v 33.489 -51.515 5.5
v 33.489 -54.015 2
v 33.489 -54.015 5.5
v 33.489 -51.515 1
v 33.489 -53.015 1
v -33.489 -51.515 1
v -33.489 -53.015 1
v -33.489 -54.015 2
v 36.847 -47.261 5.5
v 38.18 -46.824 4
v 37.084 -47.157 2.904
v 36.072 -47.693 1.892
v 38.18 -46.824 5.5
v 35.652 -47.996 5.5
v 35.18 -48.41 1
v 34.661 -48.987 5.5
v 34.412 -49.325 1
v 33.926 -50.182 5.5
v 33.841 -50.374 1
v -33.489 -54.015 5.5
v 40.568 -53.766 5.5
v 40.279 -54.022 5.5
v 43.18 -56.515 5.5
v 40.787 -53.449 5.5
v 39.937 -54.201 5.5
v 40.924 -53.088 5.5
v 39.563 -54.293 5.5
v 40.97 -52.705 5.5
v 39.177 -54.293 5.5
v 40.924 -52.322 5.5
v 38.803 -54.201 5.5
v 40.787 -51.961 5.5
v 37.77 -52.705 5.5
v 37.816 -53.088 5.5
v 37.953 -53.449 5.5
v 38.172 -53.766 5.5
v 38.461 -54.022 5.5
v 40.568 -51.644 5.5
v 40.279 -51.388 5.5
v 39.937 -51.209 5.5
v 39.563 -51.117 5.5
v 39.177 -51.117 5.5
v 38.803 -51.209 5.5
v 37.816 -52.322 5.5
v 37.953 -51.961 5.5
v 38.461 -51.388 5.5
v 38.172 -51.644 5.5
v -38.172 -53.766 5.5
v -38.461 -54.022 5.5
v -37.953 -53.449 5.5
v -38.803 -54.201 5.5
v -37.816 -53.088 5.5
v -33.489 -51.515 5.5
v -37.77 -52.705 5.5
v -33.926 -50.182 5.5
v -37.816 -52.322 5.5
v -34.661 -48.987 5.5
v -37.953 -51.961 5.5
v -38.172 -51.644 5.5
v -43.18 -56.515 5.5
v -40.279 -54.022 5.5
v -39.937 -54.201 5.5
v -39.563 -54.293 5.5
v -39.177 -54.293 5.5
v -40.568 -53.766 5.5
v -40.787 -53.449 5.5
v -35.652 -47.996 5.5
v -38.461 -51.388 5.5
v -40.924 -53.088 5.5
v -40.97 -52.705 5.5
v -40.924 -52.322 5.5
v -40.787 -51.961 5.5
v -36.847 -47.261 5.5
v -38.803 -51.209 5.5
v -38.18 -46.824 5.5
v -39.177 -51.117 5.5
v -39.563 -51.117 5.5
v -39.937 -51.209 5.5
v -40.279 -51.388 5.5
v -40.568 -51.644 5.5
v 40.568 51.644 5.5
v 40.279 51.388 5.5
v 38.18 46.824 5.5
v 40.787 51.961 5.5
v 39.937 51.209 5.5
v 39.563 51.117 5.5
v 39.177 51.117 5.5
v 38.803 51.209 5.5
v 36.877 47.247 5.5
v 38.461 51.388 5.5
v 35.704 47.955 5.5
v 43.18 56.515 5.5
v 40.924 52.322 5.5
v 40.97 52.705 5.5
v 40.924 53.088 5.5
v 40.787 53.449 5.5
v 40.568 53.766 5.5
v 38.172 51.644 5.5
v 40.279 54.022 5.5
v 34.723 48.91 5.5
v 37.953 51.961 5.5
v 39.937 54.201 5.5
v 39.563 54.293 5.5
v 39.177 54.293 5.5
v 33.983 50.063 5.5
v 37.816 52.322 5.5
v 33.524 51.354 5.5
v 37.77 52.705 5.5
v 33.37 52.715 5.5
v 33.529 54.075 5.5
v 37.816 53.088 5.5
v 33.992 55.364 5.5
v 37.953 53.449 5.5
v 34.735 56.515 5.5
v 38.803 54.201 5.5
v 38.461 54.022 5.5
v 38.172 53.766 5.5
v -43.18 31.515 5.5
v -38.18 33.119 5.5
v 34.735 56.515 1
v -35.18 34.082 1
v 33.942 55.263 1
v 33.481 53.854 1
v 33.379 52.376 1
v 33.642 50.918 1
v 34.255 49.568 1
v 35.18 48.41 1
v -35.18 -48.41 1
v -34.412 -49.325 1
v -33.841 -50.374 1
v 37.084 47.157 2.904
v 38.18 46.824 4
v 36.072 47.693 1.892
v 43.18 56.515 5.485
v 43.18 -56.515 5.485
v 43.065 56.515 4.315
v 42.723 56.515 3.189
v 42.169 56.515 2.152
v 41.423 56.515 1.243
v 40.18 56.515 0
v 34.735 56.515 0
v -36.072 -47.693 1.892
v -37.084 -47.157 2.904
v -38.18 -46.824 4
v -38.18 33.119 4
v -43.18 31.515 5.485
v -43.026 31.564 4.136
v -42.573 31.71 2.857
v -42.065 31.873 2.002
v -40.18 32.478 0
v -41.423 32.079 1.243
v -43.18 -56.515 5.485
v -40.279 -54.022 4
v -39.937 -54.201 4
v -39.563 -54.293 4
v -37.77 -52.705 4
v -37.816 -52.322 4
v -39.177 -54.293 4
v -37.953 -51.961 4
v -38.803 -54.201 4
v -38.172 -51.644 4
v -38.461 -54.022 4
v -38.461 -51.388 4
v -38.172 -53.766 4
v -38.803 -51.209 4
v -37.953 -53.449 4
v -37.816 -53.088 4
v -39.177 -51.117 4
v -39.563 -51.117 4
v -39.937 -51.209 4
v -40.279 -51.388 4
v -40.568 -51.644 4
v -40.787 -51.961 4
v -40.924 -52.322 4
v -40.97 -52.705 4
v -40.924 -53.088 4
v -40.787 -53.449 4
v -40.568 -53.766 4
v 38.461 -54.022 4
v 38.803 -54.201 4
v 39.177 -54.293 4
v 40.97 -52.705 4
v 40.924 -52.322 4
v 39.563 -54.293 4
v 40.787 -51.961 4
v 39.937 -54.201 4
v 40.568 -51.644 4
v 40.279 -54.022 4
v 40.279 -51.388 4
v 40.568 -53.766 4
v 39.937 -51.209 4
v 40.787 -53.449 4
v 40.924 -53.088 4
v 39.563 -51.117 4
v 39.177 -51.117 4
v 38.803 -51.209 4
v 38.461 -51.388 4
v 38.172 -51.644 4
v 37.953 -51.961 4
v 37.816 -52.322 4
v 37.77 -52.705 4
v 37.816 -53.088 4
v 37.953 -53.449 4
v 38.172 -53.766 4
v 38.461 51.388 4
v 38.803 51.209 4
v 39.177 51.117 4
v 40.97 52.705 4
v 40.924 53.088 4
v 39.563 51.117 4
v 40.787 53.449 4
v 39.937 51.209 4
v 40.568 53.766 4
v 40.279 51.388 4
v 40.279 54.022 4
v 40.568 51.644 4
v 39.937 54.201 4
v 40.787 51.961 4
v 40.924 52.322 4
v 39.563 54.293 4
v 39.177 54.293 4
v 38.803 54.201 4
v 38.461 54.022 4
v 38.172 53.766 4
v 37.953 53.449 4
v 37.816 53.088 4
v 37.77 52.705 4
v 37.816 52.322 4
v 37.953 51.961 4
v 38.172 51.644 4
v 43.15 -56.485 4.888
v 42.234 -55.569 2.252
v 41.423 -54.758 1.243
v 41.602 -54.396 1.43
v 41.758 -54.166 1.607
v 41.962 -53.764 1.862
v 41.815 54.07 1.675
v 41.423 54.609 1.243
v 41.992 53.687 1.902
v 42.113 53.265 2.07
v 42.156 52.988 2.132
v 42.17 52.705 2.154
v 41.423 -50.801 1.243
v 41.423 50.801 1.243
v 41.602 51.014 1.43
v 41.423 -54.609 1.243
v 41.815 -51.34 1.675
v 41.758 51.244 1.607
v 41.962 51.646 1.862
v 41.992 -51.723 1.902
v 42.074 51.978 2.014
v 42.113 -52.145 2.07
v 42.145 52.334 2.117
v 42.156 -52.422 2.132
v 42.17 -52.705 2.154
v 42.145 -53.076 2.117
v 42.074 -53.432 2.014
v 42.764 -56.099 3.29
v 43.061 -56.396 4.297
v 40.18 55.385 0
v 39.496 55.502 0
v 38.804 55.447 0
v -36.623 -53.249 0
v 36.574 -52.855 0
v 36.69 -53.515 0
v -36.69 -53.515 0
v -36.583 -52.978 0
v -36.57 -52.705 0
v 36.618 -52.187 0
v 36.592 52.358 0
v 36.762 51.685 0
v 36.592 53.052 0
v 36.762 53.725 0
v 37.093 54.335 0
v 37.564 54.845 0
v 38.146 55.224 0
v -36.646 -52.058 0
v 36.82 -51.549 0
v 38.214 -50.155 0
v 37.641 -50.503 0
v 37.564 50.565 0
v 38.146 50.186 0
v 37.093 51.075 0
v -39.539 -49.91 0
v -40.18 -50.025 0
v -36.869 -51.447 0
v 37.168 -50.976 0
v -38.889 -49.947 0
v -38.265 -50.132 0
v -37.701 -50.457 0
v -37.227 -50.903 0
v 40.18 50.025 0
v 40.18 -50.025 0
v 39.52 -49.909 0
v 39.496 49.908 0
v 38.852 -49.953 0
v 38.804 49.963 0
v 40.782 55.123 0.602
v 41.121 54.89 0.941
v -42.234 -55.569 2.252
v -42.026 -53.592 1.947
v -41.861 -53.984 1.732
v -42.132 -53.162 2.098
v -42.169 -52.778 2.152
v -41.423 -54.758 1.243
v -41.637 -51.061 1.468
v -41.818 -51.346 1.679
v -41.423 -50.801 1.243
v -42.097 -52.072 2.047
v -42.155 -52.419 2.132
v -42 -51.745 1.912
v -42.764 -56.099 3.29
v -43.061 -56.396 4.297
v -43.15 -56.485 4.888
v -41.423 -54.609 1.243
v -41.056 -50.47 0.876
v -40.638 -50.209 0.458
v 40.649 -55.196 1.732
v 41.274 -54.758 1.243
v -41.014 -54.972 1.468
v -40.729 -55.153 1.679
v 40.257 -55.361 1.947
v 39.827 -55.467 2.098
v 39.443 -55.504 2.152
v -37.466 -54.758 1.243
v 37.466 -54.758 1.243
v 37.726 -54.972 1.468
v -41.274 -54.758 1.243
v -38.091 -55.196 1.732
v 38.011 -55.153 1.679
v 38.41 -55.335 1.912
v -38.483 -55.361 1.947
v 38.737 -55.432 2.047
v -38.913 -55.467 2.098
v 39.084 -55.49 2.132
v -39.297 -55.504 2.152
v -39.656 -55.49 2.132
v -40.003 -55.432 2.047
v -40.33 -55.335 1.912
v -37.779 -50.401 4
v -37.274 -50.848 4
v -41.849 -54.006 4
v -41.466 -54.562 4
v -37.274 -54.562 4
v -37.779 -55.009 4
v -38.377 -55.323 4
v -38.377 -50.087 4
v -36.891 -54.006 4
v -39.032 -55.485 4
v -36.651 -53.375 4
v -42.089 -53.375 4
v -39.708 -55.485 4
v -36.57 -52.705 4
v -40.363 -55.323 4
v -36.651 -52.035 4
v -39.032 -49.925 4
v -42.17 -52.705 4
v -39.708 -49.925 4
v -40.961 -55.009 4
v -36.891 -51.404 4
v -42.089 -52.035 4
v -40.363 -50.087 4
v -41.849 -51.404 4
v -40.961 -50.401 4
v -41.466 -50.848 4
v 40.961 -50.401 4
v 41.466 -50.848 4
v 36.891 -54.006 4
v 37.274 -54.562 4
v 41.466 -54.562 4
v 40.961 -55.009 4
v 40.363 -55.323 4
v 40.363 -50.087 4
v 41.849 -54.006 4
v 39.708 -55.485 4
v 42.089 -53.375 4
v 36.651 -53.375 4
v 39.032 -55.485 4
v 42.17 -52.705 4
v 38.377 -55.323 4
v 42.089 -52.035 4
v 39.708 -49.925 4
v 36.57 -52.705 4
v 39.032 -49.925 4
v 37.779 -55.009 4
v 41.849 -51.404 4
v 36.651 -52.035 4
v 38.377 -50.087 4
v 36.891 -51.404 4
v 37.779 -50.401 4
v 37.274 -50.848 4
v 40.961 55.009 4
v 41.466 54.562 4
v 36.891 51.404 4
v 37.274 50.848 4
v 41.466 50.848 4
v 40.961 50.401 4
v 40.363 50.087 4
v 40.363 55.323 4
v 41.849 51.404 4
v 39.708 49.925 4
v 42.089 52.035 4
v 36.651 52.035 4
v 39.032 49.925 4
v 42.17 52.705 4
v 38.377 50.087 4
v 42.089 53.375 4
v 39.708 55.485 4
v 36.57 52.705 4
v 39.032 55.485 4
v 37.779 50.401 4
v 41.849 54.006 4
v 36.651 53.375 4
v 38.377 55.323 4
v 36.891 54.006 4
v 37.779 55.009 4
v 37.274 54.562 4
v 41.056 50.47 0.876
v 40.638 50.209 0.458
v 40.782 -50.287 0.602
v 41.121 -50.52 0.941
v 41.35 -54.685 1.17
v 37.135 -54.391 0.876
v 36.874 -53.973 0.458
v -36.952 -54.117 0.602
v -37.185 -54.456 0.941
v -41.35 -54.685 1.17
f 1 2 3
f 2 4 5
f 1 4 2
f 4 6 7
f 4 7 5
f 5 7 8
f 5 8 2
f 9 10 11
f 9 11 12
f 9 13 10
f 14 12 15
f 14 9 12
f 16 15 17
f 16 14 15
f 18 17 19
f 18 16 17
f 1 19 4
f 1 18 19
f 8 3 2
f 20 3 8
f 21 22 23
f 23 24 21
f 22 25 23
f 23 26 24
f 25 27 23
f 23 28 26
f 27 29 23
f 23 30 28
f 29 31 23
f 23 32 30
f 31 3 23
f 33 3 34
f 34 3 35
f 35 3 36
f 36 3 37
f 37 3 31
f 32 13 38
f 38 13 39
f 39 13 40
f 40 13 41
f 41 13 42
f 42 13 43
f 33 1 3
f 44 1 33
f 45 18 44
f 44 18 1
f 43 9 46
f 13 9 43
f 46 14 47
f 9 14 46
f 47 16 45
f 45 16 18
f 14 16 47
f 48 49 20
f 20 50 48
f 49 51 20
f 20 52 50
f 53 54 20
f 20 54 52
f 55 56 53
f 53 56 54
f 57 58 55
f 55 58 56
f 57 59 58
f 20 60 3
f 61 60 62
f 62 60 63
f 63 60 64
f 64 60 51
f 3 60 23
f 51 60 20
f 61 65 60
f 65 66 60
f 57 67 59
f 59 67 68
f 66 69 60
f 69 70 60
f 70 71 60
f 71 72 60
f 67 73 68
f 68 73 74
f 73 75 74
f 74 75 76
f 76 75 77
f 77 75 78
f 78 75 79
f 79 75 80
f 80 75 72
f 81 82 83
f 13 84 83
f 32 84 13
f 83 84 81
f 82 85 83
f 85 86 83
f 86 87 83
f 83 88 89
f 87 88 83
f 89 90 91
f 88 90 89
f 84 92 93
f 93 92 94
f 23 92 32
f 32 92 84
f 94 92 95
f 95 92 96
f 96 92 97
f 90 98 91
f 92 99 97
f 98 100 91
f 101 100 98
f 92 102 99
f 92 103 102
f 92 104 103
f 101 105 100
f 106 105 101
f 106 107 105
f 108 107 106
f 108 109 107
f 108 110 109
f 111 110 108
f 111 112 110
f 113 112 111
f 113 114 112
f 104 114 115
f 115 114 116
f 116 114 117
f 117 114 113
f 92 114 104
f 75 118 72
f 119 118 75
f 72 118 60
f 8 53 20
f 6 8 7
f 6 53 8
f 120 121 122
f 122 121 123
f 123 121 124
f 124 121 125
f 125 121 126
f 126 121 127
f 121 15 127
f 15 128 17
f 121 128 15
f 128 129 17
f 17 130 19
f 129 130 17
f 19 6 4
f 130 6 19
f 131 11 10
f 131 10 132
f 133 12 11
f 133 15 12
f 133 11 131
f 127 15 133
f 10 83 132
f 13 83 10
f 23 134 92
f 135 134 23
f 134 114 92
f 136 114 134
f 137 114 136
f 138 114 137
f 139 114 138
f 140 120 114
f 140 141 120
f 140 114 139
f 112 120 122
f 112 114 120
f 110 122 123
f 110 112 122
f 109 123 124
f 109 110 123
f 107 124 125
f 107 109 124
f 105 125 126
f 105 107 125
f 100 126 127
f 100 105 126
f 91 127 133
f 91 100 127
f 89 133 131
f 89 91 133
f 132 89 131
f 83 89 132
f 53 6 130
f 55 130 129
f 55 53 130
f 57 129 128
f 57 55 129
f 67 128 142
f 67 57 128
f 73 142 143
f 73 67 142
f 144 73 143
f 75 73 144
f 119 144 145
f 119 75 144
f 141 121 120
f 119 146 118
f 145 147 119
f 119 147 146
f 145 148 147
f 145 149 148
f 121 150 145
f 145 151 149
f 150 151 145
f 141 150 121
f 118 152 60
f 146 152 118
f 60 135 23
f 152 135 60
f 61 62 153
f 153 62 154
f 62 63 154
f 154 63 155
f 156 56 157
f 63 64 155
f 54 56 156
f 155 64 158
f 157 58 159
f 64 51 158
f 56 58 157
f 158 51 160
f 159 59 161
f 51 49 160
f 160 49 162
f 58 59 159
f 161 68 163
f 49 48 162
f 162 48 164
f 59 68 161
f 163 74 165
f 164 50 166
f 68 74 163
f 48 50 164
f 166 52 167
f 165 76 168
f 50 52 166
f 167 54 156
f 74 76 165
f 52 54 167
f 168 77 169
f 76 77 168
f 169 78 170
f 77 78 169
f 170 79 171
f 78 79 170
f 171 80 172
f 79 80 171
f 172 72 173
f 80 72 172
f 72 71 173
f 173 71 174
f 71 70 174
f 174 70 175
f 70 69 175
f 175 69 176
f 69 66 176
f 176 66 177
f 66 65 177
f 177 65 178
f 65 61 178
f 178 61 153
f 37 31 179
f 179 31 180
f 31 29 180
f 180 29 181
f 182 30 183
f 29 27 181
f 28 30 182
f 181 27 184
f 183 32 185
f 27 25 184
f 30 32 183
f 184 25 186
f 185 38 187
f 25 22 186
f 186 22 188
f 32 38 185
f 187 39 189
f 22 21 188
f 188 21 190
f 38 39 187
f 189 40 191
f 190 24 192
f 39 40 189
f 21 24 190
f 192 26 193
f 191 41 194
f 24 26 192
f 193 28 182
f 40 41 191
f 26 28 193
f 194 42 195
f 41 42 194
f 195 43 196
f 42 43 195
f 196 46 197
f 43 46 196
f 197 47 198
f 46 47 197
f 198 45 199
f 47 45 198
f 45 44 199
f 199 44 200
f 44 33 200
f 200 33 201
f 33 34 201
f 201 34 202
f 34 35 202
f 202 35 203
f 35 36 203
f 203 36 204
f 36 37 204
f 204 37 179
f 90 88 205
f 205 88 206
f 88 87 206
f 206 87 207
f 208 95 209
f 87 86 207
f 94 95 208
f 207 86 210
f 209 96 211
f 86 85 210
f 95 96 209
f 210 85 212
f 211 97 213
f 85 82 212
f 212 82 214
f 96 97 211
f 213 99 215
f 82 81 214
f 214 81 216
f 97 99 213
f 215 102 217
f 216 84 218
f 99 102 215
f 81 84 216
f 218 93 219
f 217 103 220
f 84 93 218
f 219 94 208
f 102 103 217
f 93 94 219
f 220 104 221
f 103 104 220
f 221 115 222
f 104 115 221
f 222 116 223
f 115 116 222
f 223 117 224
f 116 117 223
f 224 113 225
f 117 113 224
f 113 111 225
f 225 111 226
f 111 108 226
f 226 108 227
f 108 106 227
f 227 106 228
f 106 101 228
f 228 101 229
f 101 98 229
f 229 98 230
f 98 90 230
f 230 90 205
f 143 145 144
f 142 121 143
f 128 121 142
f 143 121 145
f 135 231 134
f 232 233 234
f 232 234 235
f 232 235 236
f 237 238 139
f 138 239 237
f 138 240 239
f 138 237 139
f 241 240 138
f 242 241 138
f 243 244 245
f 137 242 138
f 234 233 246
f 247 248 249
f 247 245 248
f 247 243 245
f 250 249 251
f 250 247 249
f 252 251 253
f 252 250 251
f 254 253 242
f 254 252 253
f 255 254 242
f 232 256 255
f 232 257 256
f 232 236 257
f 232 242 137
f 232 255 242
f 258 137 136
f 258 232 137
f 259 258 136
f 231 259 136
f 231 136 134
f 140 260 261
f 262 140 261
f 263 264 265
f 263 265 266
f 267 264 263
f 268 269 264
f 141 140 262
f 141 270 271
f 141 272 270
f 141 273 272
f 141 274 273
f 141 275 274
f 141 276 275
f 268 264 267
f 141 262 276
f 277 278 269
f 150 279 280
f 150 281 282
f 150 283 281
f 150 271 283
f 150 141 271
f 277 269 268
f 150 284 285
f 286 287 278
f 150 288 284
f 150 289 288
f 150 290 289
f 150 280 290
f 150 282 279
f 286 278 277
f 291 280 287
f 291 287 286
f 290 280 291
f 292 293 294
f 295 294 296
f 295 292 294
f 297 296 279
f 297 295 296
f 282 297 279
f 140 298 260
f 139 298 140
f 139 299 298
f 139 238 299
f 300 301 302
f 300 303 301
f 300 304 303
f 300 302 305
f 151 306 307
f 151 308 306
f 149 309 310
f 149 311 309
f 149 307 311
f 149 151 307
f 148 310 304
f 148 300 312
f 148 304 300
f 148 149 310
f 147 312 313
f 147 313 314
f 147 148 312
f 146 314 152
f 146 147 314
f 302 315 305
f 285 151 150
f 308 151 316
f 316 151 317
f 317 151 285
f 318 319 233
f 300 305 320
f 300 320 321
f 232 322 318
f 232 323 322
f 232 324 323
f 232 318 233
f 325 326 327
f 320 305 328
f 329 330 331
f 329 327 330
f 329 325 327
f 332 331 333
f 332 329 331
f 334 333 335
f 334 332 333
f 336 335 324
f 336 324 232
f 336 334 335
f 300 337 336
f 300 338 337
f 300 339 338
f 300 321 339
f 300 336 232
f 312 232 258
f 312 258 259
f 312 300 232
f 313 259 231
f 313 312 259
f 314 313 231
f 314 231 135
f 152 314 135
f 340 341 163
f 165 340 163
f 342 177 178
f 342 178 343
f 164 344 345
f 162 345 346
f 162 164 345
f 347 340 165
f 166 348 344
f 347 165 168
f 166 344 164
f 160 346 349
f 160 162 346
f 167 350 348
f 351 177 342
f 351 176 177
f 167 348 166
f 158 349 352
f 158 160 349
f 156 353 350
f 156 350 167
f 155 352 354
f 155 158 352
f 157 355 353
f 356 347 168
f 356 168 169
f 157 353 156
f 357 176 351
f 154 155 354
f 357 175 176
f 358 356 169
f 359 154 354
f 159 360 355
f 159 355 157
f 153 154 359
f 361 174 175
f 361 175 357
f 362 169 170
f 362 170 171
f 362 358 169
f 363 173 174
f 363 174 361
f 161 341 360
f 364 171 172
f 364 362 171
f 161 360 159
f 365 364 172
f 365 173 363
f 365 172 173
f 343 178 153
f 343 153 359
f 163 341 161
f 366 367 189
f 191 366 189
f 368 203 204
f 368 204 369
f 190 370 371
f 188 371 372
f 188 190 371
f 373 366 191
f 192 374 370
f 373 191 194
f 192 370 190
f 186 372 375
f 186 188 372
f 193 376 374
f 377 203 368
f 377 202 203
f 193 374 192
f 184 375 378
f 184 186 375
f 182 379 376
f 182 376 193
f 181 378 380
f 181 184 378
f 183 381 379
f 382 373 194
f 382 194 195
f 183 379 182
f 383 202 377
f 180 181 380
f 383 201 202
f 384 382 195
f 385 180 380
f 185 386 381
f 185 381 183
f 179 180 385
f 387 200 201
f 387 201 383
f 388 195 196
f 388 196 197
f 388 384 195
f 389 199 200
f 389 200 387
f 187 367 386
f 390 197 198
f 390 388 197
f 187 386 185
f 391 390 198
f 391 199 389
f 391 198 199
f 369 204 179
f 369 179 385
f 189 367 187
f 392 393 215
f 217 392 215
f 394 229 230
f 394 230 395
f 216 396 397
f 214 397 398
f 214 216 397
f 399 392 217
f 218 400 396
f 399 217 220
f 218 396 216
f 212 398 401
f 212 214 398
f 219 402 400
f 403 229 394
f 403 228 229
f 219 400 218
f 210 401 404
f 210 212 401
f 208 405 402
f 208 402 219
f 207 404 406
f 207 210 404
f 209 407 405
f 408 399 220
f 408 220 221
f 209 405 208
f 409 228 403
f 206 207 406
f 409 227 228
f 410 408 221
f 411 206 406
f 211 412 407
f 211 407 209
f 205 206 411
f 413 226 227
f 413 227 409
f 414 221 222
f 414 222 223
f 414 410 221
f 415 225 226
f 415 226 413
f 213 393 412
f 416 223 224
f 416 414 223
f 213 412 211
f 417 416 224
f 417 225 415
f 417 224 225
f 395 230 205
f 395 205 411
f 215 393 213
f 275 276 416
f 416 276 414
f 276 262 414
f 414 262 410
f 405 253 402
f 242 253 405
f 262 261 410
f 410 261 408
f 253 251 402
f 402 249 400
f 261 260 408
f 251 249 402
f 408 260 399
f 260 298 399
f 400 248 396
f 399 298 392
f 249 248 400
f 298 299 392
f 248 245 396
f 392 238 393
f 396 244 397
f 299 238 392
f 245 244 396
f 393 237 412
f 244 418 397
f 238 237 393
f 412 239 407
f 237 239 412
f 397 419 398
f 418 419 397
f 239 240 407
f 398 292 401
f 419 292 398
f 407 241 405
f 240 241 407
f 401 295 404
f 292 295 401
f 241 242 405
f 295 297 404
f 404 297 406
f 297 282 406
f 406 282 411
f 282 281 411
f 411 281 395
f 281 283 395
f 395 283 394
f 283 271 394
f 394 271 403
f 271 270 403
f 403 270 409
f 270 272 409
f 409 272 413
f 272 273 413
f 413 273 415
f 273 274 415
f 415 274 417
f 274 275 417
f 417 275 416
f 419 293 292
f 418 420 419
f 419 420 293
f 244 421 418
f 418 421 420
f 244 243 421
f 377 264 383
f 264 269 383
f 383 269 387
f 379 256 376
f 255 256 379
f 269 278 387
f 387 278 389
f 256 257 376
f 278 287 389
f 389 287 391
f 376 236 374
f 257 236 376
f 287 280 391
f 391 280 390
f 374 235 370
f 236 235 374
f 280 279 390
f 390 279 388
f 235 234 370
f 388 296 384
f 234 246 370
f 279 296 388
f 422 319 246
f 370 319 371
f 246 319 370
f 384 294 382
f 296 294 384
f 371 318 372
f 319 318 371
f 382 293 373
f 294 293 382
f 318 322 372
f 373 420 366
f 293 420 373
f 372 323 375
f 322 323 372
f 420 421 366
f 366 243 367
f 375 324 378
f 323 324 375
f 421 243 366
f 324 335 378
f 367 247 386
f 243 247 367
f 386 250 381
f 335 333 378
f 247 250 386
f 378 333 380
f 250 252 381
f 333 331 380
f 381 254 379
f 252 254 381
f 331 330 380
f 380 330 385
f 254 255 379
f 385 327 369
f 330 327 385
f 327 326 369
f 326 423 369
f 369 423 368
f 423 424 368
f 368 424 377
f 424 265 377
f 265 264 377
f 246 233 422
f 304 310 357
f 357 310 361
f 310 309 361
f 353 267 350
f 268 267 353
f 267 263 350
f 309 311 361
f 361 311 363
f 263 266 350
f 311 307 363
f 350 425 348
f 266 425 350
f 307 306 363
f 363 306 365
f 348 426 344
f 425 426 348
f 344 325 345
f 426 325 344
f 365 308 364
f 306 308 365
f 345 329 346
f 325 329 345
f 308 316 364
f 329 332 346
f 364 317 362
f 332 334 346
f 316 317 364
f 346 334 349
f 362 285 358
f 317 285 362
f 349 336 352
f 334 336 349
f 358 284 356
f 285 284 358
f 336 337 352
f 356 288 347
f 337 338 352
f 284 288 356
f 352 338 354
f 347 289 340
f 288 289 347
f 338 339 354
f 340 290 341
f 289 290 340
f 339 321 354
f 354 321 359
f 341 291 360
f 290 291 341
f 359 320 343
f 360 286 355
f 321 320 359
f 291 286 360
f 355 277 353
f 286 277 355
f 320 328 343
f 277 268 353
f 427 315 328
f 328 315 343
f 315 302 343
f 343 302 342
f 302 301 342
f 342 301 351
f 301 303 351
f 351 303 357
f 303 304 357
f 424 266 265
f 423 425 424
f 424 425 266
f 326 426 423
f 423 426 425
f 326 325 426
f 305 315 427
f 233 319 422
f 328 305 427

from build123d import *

# Parameters (mm, degrees)
SKETCH_W            = 86.36
SKETCH_H            = 113.03
PAD_DEPTH           = 10
SKETCH001_R         = 1.6
POCKET_DEPTH        = 1
POCKET001_DEPTH     = 9
CHAMFER_SIZE        = 3
FILLET_R            = 6
FILLET_FACE23_R     = 1.6
POCKET002_DEPTH     = 9.001
POCKET002_FACE25_R  = 1.6
POCKET003_DEPTH     = 9.001
SKETCH003_R         = 2.8
POCKET005_DEPTH     = 4
POCKET006_DEPTH     = 10.001
POCKET006_FACE37_R  = 1.6
POCKET007_DEPTH     = 9.0010001
POCKET007_FACE6_R   = 1.6
POCKET008_DEPTH     = 4.5
CHAMFER001_SIZE     = 3
CHAMFER001_FACE10_W = 66.9783844647
CHAMFER001_FACE10_H = 4.5
POCKET009_DEPTH     = 2.5
CHAMFER002_SIZE     = 1


with BuildPart() as part:
    # Sketch → Pad (new body)
    with BuildSketch(Plane.XY):
        Rectangle(SKETCH_W, SKETCH_H)
    extrude(amount=PAD_DEPTH)

    # Sketch001 (on Face6 of Pad) → Pocket (cut)
    with BuildSketch(Plane.XY.offset(10)):
        with Locations((-39.37, -52.705)):
            Circle(SKETCH001_R)
        with Locations((39.37, -52.705)):
            Circle(SKETCH001_R)
        with Locations((39.37, 52.705)):
            Circle(SKETCH001_R)
    extrude(amount=-POCKET_DEPTH, mode=Mode.SUBTRACT)

    # Sketch002 (on Face5 of Pocket) → Pocket001 (cut)
    with BuildSketch(Plane.XY.offset(10)):
        with BuildLine():
            Line((-38.18, 56.515), (34.734927185, 56.515))
            ThreePointArc((34.734927185, 56.515), (33.7166110056, 50.695225665), (38.18, 46.8241922324))
            Line((38.18, -46.8241922324), (38.18, 46.8241922324))
            ThreePointArc((38.18, -46.8241922324), (35.1273593129, -48.4623593129), (33.4891922324, -51.515))
            Line((-33.4891922324, -51.515), (33.4891922324, -51.515))
            ThreePointArc((-33.4891922324, -51.515), (-35.1273593129, -48.4623593129), (-38.18, -46.8241922324))
            Line((-38.18, -46.8241922324), (-38.18, 56.515))
        make_face()
    extrude(amount=-POCKET001_DEPTH, mode=Mode.SUBTRACT)

    # Chamfer
    chamfer_edges = [part.edges().sort_by_distance(p)[0] for p in [
        (43.18, 0, 0),
        (0, -56.515, 0),
        (-43.18, 0, 0),
    ]]
    chamfer(chamfer_edges, length=CHAMFER_SIZE)

    # Fillet
    fillet_edges = [part.edges().sort_by_distance(p)[0] for p in [
        (43.18, 0, 3),
        (0, -56.515, 3),
        (-43.18, 0, 3),
    ]]
    fillet(fillet_edges, radius=FILLET_R)

    # Fillet Face23 → Pocket002 (cut, through all)
    with BuildSketch(Plane(origin=(39.37, 52.705, 9), x_dir=(0, 1, 0), z_dir=(0, 0, 1))):
        Circle(FILLET_FACE23_R)
    extrude(amount=-POCKET002_DEPTH, mode=Mode.SUBTRACT)

    # Pocket002 Face25 → Pocket003 (cut, through all)
    with BuildSketch(Plane(origin=(39.37, -52.705, 9), x_dir=(0, 1, 0), z_dir=(0, 0, 1))):
        Circle(POCKET002_FACE25_R)
    extrude(amount=-POCKET003_DEPTH, mode=Mode.SUBTRACT)

    # Sketch003 → Pocket005 (cut)
    with BuildSketch(Plane(origin=(0, 0, 0), x_dir=(1, 0, 0), z_dir=(0, 0, -1))):
        with Locations((-39.37, 52.705)):
            Circle(SKETCH003_R)
        with Locations((39.37, 52.705)):
            Circle(SKETCH003_R)
        with Locations((39.37, -52.705)):
            Circle(SKETCH003_R)
    extrude(amount=-POCKET005_DEPTH, mode=Mode.SUBTRACT)

    # Sketch004 (on Face4 of Pocket005) → Pocket006 (cut, through all)
    with BuildSketch(Plane(origin=(0, 0, 0), x_dir=(1, 0, 0), z_dir=(0, 0, -1))):
        Polygon((34.734927185, -56.515), (-43.18, -31.515), (-74.957912, -45.45311), (-56.152271, -90.823143), (38.876451, -98.385315), align=None)
    extrude(amount=-POCKET006_DEPTH, mode=Mode.SUBTRACT)

    # Pocket006 Face37 → Pocket007 (cut, through all)
    with BuildSketch(Plane(origin=(-39.37, -52.705, 9), x_dir=(0, 1, 0), z_dir=(0, 0, 1))):
        Circle(POCKET006_FACE37_R)
    extrude(amount=-POCKET007_DEPTH, mode=Mode.SUBTRACT)

    # Pocket007 Face6 → Pocket008 (cut)
    with BuildSketch(Plane(origin=(4.1610773178, -17.506602636, 10), x_dir=(0, 1, 0), z_dir=(0, 0, 1))):
        with BuildLine():
            Line((-39.008397364, 47.3410773178), (-39.008397364, -39.0189226822))
            Line((-39.008397364, -39.0189226822), (74.021602636, -39.0189226822))
            Line((74.021602636, -39.0189226822), (74.021602636, -30.5738498672))
            ThreePointArc((74.021602636, -30.5738498672), (68.201828301, -29.5555336878), (64.3307948684, -34.0189226822))
            Line((64.3307948684, -34.0189226822), (-29.3175895963, -34.0189226822))
            ThreePointArc((-29.3175895963, -34.0189226822), (-30.9557566768, -30.9662819951), (-34.008397364, -29.3281149145))
            Line((-34.008397364, -29.3281149145), (-34.008397364, 37.6502695502))
            ThreePointArc((-34.008397364, 37.6502695502), (-30.9557566768, 39.2884366307), (-29.3175895963, 42.3410773178))
            Line((-29.3175895963, 42.3410773178), (50.6259165271, 42.3410773178))
            Line((50.6259165271, 42.3410773178), (49.021602636, 47.3410773178))
            Line((49.021602636, 47.3410773178), (-39.008397364, 47.3410773178))
        make_face()
        with Locations((-35.198397364, -35.2089226822)):
            Circle(POCKET007_FACE6_R, mode=Mode.SUBTRACT)
        with Locations((70.211602636, -35.2089226822)):
            Circle(POCKET007_FACE6_R, mode=Mode.SUBTRACT)
        with Locations((-35.198397364, 43.5310773178)):
            Circle(POCKET007_FACE6_R, mode=Mode.SUBTRACT)
    extrude(amount=-POCKET008_DEPTH, mode=Mode.SUBTRACT)

    # Chamfer001
    chamfer001_edges = [part.edges().sort_by_distance(p)[0] for p in [
        (-38.18, -6.852439, 1),
        (38.18, 0, 1),
    ]]
    chamfer(chamfer001_edges, length=CHAMFER001_SIZE)

    # Chamfer001 Face10 → Pocket009 (cut)
    with BuildSketch(Plane(origin=(0, -51.515, 3.25), x_dir=(1, 0, 0), z_dir=(0, 1, 0))):
        Rectangle(CHAMFER001_FACE10_W, CHAMFER001_FACE10_H)
    extrude(amount=-POCKET009_DEPTH, mode=Mode.SUBTRACT)

    # Chamfer002
    chamfer002_edges = [part.edges().sort_by_distance(p)[0] for p in [
        (0, -54.015, 1),
    ]]
    chamfer(chamfer002_edges, length=CHAMFER002_SIZE)


solid = part.part
